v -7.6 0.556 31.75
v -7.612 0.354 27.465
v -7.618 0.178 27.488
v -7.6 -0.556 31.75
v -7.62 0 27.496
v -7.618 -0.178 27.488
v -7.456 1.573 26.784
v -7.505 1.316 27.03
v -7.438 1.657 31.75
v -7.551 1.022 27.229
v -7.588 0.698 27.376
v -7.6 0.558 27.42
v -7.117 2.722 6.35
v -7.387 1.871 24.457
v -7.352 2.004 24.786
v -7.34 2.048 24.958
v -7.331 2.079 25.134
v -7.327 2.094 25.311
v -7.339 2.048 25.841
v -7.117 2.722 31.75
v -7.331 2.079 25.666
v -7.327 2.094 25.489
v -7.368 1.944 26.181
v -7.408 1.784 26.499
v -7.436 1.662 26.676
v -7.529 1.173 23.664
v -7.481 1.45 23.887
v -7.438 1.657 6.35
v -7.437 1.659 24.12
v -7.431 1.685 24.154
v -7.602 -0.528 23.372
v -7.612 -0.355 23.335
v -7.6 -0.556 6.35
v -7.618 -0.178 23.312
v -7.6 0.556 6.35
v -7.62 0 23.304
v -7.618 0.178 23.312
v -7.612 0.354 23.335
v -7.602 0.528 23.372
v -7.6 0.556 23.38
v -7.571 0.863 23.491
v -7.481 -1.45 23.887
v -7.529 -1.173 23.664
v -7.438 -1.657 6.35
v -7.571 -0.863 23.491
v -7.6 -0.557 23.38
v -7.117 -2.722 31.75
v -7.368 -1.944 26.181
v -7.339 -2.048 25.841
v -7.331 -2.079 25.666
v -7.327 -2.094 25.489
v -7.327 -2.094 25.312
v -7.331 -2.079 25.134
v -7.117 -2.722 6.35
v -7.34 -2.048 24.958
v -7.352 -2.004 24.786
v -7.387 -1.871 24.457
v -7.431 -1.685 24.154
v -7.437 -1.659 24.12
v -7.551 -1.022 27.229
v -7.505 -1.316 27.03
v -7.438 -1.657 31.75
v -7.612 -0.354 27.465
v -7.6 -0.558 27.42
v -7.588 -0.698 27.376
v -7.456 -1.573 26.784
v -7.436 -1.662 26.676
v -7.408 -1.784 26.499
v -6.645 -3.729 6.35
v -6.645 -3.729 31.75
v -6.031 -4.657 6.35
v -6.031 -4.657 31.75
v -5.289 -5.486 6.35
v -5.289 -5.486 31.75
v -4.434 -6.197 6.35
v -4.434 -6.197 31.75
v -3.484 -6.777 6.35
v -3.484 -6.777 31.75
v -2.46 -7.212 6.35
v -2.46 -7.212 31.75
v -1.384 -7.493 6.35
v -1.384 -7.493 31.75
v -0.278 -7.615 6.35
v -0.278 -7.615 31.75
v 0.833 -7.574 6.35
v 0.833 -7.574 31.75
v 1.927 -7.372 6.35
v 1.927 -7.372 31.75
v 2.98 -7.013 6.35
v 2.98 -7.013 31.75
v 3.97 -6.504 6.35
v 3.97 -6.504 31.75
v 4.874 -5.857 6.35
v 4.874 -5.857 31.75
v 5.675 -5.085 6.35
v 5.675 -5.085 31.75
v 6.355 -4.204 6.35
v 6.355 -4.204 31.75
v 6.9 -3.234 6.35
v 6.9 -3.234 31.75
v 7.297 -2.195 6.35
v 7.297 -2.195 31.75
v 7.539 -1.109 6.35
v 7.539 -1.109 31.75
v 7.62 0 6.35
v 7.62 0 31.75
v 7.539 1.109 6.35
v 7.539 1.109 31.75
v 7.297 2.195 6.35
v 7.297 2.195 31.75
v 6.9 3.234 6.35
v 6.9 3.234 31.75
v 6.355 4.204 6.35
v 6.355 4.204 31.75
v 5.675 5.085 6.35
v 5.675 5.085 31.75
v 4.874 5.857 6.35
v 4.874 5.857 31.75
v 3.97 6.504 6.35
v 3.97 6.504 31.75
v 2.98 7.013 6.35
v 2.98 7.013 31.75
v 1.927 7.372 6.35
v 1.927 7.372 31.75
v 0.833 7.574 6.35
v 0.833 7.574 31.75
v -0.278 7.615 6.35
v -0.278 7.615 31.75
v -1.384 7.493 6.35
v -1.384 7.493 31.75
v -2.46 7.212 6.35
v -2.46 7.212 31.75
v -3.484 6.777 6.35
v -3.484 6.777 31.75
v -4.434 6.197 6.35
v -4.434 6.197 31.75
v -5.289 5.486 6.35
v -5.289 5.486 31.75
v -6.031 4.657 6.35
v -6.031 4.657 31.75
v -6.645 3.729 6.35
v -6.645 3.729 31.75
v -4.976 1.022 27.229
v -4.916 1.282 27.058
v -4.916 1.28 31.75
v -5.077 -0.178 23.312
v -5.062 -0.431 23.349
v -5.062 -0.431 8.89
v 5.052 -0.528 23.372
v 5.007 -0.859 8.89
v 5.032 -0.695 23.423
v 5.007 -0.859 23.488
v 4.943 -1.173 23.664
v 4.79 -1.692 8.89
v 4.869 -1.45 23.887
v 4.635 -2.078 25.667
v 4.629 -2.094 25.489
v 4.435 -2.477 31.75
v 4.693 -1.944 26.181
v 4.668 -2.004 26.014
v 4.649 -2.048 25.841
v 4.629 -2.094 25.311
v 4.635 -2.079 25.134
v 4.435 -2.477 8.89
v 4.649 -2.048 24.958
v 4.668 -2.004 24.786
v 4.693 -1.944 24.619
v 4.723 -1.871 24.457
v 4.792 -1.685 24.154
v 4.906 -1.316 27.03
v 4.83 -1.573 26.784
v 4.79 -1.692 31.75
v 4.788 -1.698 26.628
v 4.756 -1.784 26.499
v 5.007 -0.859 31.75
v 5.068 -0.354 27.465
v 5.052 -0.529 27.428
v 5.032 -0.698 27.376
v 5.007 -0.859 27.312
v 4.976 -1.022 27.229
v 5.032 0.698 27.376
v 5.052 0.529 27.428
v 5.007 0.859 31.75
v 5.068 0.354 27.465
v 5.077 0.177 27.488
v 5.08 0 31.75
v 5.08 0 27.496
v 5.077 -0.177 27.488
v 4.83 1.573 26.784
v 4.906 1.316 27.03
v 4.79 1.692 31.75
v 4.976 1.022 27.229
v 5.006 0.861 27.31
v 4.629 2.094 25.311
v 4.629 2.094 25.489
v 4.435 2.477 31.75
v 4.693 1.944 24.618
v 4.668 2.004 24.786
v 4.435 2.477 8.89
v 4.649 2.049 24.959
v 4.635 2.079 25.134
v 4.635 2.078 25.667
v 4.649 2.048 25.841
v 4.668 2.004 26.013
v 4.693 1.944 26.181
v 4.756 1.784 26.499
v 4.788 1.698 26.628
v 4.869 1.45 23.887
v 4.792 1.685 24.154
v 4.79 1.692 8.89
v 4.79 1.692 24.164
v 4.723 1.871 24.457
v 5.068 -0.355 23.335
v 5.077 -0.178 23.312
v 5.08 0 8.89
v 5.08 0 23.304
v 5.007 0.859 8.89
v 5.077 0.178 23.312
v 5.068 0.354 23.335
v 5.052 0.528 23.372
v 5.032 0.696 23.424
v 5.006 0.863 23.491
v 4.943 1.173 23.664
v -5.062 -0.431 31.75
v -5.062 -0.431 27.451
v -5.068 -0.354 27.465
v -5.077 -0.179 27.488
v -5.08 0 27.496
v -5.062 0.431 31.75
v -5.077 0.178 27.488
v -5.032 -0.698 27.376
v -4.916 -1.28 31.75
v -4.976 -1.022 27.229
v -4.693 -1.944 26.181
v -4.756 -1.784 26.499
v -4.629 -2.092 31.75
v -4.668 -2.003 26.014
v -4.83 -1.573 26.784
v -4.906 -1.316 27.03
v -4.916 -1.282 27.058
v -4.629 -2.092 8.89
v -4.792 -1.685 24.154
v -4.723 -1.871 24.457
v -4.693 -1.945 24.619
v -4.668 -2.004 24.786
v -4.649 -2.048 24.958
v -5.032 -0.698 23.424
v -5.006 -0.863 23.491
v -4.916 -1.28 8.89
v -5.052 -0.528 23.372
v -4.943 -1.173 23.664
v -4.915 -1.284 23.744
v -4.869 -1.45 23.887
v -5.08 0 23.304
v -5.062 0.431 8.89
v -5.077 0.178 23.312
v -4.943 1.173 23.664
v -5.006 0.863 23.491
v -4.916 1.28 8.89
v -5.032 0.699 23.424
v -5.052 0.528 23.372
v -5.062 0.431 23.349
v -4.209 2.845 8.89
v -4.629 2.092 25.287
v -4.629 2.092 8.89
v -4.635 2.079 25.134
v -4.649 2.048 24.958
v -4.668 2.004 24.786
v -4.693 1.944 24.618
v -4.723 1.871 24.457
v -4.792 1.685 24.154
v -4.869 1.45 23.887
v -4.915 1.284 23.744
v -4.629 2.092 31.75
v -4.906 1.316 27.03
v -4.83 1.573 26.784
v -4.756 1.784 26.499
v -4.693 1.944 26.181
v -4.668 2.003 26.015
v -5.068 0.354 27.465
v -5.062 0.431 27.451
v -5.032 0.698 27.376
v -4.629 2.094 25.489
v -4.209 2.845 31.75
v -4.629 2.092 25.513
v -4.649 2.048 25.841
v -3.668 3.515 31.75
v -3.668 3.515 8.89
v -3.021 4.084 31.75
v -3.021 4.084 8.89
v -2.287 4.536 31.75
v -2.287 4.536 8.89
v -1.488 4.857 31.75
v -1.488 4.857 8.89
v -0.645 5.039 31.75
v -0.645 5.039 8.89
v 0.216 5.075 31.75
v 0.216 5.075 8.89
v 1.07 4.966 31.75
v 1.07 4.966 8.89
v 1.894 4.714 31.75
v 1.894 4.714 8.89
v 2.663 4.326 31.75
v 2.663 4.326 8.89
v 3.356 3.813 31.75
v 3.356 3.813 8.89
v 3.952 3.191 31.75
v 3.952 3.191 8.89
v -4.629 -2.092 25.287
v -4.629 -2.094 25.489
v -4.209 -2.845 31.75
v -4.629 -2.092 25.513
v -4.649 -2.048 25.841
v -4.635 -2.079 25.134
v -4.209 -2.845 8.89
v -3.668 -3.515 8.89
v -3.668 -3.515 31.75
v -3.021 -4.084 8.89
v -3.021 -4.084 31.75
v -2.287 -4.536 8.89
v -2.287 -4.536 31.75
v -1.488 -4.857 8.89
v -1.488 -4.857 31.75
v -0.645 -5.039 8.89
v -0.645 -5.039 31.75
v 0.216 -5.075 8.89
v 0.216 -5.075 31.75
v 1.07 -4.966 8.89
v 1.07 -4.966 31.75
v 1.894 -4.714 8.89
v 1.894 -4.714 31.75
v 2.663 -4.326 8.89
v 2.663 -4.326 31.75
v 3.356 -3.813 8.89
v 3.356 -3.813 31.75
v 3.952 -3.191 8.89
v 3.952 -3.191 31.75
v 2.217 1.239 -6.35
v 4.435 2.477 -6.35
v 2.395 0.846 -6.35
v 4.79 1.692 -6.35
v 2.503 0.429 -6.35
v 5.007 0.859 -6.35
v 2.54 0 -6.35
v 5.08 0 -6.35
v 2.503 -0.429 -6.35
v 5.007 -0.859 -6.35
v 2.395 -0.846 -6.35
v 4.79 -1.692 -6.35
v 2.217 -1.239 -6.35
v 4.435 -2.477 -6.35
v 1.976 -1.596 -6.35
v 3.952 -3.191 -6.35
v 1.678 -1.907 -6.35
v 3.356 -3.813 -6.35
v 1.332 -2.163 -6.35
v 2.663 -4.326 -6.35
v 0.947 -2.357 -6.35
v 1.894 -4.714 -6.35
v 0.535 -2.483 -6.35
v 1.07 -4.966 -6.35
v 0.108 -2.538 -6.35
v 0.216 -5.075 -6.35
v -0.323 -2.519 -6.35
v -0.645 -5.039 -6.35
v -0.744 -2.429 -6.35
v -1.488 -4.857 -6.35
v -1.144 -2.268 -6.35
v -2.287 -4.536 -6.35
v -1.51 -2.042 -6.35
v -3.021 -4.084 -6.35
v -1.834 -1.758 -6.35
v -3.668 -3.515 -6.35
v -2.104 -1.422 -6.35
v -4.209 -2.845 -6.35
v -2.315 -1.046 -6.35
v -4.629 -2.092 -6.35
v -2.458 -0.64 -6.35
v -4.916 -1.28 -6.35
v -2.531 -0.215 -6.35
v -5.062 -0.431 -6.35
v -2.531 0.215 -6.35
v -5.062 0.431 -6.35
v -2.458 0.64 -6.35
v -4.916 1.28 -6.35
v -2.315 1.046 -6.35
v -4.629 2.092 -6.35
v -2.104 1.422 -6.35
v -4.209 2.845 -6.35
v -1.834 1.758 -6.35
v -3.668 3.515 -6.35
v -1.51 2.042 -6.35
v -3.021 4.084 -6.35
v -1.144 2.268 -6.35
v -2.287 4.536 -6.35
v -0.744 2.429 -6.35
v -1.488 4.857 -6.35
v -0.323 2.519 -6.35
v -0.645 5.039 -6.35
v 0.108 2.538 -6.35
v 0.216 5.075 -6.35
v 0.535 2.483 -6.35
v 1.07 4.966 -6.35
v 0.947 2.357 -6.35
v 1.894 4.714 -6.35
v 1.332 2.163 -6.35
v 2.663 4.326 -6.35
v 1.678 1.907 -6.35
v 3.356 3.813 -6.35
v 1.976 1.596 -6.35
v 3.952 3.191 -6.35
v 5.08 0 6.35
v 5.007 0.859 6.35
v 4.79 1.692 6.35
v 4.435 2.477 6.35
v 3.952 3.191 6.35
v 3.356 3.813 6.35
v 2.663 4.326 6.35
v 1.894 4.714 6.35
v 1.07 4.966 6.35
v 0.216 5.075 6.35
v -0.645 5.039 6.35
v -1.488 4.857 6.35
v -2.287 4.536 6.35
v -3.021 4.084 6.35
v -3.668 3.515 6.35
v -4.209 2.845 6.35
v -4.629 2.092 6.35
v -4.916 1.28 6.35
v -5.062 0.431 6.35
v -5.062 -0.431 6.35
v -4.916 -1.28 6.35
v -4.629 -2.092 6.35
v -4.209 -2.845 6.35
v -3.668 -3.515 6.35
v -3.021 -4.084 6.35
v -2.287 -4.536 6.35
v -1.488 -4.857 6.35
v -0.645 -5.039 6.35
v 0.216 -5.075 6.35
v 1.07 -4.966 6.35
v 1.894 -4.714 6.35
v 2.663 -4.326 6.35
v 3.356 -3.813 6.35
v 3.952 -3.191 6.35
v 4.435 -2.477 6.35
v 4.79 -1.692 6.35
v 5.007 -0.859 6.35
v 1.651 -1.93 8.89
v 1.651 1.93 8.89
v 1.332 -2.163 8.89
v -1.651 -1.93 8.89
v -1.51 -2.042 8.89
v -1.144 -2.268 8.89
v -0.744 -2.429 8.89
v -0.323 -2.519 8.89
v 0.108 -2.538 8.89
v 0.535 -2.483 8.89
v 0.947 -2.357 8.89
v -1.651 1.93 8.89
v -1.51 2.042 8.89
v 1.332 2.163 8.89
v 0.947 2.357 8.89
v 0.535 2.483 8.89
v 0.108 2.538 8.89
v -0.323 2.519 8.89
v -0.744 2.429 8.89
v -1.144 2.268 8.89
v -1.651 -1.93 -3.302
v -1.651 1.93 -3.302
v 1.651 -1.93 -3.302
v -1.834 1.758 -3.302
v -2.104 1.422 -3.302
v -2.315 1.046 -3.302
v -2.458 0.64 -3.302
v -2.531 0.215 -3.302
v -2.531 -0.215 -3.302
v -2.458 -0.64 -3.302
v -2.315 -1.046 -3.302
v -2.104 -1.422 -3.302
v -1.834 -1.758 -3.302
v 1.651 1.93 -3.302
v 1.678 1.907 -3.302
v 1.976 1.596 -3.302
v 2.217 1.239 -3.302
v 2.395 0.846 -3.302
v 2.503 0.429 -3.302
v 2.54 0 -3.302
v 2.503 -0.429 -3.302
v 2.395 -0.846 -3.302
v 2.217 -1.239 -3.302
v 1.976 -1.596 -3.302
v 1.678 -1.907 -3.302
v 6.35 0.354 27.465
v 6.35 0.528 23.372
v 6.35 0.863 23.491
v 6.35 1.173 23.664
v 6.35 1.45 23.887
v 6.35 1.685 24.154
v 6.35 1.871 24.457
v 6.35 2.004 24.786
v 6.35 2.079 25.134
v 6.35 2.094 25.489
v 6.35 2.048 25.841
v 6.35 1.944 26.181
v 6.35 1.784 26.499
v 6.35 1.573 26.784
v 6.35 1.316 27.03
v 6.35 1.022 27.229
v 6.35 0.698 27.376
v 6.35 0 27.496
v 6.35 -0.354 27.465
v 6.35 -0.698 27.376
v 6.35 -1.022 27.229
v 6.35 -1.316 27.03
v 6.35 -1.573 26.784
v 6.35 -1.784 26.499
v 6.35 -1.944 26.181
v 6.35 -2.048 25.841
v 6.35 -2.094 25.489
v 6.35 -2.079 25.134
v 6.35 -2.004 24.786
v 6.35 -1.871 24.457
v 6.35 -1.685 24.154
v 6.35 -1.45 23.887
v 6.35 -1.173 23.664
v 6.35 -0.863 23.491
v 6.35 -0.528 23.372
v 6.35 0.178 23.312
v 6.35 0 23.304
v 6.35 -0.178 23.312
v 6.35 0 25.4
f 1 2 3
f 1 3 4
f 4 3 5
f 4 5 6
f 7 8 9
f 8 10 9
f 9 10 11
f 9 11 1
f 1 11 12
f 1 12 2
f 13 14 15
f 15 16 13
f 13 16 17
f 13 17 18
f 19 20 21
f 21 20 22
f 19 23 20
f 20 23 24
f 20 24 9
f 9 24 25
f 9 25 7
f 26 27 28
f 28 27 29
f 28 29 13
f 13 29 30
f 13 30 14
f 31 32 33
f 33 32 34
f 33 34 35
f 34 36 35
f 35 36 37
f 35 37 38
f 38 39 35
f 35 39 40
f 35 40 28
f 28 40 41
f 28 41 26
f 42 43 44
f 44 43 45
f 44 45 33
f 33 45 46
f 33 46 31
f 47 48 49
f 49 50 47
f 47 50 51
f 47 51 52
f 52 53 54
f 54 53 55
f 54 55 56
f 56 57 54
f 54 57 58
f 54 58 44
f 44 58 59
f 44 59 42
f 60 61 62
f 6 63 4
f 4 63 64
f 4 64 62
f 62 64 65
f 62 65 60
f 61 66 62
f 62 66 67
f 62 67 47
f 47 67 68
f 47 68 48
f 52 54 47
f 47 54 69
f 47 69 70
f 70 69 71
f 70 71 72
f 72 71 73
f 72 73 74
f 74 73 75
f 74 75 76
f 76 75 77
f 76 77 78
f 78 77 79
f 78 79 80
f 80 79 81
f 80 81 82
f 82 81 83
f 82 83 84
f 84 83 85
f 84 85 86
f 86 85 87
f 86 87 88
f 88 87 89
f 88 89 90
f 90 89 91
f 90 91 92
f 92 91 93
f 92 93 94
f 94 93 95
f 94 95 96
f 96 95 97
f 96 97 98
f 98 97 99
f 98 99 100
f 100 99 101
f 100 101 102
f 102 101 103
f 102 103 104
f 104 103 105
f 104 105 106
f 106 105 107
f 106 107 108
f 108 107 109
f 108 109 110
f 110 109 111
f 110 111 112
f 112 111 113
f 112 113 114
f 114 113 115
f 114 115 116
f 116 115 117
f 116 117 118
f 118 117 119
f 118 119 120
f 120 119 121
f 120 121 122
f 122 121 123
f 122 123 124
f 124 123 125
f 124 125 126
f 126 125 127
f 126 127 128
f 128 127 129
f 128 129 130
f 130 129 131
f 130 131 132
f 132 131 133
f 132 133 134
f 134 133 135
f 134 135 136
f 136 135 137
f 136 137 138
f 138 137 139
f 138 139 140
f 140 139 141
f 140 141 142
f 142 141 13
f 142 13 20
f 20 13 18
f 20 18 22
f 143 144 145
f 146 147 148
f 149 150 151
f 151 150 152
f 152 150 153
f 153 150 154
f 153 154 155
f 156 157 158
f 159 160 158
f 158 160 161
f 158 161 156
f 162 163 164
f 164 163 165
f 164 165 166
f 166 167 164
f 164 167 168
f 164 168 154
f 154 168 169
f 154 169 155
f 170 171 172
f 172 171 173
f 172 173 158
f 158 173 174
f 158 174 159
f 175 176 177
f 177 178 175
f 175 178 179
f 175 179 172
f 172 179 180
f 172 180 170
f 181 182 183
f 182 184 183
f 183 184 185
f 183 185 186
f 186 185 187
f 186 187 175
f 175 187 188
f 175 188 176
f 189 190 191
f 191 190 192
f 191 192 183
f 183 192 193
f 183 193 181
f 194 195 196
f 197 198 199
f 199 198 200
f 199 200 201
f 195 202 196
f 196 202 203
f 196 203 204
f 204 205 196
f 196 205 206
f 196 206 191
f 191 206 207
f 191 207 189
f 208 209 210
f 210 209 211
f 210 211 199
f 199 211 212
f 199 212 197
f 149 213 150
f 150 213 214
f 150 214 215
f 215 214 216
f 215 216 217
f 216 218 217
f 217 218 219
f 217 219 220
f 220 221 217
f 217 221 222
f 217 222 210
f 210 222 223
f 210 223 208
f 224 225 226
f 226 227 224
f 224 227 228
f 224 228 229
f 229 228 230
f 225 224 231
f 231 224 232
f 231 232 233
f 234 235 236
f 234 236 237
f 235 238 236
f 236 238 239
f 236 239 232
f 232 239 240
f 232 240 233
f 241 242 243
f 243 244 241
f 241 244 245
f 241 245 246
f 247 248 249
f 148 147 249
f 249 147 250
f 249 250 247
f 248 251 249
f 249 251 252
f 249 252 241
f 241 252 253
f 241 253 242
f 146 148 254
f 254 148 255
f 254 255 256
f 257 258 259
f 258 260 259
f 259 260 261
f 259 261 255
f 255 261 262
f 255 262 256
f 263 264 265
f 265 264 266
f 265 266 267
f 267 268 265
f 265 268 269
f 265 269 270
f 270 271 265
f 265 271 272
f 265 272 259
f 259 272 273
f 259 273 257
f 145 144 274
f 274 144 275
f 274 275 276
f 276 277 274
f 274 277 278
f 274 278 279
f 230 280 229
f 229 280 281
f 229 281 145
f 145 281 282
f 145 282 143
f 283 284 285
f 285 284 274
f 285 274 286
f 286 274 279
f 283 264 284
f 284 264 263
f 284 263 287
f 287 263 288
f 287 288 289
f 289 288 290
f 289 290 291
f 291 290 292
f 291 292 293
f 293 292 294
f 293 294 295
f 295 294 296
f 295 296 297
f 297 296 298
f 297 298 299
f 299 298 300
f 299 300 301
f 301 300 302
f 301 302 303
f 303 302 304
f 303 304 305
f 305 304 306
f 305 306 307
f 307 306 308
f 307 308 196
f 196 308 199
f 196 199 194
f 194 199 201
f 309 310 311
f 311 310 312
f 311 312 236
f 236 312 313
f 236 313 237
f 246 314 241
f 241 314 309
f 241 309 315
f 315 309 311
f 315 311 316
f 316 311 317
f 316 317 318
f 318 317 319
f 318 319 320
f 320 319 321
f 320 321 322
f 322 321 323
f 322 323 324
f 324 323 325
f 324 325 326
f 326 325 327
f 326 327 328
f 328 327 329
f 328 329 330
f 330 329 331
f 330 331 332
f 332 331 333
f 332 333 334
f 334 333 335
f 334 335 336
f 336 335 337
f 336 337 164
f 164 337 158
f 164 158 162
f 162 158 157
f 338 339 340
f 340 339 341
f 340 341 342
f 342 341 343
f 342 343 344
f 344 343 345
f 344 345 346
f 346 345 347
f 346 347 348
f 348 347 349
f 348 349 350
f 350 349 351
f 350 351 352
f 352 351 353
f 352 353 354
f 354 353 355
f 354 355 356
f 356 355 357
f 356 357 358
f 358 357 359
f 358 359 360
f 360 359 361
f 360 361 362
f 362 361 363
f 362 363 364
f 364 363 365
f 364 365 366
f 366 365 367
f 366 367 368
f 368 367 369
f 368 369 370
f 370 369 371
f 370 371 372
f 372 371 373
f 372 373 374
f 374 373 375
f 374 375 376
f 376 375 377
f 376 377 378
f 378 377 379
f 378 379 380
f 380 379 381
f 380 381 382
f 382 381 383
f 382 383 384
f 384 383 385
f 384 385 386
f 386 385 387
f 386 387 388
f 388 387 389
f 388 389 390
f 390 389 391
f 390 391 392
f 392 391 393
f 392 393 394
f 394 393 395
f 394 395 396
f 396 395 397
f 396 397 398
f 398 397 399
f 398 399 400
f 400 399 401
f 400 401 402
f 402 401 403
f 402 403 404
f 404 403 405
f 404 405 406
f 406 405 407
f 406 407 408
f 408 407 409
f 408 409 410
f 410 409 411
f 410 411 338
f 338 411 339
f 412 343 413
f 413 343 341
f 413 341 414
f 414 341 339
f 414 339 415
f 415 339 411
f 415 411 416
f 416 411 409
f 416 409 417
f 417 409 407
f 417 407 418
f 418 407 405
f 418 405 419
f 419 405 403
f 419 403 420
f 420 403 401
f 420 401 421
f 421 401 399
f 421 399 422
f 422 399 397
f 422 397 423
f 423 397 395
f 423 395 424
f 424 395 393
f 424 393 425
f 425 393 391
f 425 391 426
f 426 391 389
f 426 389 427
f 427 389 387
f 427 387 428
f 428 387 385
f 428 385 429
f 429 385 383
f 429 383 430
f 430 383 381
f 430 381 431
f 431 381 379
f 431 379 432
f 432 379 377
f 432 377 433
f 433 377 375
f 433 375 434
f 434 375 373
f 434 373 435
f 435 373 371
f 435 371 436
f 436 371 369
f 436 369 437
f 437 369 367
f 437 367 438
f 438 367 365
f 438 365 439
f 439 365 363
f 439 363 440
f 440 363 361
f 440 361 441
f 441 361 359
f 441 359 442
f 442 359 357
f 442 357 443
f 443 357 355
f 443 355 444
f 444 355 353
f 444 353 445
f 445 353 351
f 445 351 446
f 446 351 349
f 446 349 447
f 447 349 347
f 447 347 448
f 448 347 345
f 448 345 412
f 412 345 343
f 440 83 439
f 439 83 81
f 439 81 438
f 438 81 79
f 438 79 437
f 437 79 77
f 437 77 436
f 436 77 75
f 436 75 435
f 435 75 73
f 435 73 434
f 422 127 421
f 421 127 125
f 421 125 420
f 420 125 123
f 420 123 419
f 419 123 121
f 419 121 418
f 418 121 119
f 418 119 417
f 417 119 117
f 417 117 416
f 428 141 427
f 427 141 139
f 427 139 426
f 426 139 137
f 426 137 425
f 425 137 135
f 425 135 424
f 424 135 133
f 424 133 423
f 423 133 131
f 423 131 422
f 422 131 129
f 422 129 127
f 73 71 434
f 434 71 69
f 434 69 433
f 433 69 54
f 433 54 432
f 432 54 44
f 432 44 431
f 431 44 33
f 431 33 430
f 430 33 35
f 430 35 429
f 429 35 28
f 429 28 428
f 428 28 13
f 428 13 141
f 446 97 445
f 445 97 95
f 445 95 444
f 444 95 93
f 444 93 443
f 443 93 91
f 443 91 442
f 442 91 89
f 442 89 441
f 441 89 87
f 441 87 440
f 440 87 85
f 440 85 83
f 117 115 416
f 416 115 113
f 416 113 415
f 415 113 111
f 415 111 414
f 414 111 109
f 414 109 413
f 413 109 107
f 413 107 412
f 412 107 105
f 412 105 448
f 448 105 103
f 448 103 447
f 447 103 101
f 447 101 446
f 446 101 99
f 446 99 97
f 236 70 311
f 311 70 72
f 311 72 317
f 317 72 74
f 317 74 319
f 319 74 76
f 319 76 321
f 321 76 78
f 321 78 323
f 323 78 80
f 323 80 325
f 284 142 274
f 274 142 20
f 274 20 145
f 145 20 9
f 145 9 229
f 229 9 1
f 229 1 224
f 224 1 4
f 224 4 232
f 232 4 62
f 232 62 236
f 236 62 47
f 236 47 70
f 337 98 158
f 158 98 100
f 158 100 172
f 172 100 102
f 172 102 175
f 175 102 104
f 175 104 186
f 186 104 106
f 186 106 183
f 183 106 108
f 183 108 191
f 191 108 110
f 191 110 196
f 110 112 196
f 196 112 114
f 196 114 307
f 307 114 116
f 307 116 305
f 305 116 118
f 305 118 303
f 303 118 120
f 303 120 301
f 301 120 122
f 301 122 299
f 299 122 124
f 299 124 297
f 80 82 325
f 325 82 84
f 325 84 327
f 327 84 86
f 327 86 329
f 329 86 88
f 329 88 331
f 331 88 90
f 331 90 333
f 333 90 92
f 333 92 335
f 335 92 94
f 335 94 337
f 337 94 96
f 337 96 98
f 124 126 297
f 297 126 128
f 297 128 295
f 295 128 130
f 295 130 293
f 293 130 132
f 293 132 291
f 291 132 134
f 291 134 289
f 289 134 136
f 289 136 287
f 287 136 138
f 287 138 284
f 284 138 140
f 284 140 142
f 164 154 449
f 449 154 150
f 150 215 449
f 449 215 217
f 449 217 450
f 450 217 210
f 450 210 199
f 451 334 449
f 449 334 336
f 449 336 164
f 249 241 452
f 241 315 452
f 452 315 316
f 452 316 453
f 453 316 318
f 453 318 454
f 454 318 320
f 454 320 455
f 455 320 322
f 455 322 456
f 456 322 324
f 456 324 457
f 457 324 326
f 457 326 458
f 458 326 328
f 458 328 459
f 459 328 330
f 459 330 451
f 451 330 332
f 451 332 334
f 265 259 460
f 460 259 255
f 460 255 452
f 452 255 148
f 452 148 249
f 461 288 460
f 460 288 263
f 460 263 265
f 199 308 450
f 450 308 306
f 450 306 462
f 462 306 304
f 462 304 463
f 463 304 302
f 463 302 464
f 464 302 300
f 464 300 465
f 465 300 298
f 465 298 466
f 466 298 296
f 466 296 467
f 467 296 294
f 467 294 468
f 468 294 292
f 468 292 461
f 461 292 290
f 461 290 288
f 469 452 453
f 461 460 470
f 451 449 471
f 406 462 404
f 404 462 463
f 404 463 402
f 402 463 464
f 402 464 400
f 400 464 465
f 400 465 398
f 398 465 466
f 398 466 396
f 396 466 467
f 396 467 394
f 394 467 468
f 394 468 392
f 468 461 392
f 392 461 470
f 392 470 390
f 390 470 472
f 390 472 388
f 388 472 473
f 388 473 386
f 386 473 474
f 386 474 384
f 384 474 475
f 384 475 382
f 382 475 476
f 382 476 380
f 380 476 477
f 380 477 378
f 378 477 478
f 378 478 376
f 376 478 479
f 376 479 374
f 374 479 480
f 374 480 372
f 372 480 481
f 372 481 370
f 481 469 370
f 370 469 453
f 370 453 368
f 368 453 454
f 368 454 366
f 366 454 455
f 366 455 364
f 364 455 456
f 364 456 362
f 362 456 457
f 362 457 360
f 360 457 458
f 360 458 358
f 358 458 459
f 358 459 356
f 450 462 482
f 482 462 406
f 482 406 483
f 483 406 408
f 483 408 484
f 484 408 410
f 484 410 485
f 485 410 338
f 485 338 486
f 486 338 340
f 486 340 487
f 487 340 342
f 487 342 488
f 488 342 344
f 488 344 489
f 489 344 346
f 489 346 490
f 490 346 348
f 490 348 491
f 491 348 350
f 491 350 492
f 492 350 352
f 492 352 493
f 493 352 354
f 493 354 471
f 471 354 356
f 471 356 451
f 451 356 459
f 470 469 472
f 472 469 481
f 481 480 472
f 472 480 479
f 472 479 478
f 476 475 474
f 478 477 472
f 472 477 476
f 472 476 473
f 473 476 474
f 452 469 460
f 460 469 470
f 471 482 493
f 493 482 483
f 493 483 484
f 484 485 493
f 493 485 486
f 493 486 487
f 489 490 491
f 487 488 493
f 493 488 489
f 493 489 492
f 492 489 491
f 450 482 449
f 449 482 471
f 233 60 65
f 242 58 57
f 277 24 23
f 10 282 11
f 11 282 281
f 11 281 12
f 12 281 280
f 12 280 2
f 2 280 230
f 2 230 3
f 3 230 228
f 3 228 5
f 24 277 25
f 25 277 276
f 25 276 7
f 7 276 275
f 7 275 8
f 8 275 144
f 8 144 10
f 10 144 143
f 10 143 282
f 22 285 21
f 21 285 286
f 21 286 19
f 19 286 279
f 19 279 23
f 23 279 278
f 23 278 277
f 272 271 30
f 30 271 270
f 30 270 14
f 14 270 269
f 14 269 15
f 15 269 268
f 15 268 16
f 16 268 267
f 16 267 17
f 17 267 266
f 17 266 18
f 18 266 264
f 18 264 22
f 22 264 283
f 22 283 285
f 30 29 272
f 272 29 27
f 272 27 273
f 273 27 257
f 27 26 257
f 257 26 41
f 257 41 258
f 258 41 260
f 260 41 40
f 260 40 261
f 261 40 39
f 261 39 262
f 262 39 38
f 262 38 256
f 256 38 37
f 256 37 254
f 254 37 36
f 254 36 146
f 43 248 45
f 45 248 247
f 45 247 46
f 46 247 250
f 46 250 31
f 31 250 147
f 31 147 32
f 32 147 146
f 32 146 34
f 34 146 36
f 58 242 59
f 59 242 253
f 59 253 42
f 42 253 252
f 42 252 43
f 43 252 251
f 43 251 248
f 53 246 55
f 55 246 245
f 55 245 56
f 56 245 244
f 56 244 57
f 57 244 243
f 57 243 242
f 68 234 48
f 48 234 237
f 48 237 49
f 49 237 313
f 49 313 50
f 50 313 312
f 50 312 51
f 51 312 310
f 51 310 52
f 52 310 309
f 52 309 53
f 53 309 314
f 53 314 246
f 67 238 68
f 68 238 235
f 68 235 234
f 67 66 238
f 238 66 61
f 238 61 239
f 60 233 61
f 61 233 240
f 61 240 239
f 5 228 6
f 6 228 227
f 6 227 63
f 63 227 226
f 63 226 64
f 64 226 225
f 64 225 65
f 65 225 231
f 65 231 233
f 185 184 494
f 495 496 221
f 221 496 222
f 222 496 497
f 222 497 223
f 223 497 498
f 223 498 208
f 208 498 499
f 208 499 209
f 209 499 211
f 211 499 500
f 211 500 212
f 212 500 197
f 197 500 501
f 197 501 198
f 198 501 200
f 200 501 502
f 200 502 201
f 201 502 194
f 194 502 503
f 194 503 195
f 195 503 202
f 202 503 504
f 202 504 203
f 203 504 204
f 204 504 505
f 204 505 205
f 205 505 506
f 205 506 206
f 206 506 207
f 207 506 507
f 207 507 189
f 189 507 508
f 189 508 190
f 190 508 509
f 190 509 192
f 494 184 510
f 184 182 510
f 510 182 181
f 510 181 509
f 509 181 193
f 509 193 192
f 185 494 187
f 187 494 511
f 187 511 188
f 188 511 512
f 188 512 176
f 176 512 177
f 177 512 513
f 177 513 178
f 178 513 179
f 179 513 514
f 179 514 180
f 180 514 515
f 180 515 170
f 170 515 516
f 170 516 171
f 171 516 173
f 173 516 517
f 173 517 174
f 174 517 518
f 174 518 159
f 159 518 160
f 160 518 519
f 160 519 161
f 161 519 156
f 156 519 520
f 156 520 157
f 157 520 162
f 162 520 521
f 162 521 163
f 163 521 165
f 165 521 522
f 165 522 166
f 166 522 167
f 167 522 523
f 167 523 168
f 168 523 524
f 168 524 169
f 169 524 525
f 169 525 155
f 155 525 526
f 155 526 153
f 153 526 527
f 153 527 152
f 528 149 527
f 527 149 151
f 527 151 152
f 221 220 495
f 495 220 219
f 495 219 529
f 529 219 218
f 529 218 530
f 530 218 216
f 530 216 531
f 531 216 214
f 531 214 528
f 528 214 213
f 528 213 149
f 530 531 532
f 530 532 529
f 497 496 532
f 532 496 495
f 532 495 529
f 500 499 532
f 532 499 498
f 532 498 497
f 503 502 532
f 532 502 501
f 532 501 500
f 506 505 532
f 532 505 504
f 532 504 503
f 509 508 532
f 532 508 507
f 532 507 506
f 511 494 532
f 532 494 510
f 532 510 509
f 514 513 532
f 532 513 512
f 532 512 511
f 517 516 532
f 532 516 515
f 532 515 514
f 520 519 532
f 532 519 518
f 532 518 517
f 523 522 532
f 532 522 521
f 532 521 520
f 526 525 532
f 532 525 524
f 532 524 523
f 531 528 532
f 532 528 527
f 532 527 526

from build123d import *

# Parameters (mm, degrees)
BOSS_EXTRUDE1_START     = -15.24
BOSS_EXTRUDE1_DEPTH     = 12.192
CUT_EXTRUDE4_DEPTH      = 6.35
CUT_EXTRUDE4_DEPTH_BACK = 8.89
SKETCH4_R               = 2.0955


with BuildPart() as part:
    # Sketch1 → Revolve1 (revolve)
    with BuildSketch(Plane(origin=(0, 0, 0), x_dir=(1, 0, 0), z_dir=(0, 1, 0))):
        Polygon((2.54, 6.35), (2.54, -6.35), (2.54, -8.89), (5.08, -8.89), (5.08, -31.75), (7.62, -31.75), (7.62, -6.35), (5.08, -6.35), (5.08, 6.35), align=None)
    revolve(axis=Axis((0, 0, 6.35), (0, 0, -1)))

    # Sketch2 → Boss-Extrude1 (add)
    with BuildSketch(Plane(origin=(0, 0, -6.35), x_dir=(-1, 0, 0), z_dir=(0, 0, -1)).offset(BOSS_EXTRUDE1_START)):
        with BuildLine():
            Line((1.651, -1.930232888), (1.651, 1.930232888))
            ThreePointArc((1.651, 1.930232888), (2.54, 0), (1.651, -1.930232888))
        make_face()
        with BuildLine():
            Line((-1.651, -1.930232888), (-1.651, 1.930232888))
            ThreePointArc((-1.651, 1.930232888), (-2.54, 0), (-1.651, -1.930232888))
        make_face()
    extrude(amount=BOSS_EXTRUDE1_DEPTH)

    # Sketch4 → Cut-Extrude4 (cut, two sides: drawn at the far end of the back side and taken through both)
    with BuildSketch(Plane(origin=(0, 0, 0), x_dir=(0, 0, -1), z_dir=(1, 0, 0)).offset(-CUT_EXTRUDE4_DEPTH_BACK)):
        with Locations(Location((-25.4, 0, 0), (0, 0, 180))):
            Circle(SKETCH4_R)
    extrude(amount=CUT_EXTRUDE4_DEPTH + CUT_EXTRUDE4_DEPTH_BACK, mode=Mode.SUBTRACT)


solid = part.part
